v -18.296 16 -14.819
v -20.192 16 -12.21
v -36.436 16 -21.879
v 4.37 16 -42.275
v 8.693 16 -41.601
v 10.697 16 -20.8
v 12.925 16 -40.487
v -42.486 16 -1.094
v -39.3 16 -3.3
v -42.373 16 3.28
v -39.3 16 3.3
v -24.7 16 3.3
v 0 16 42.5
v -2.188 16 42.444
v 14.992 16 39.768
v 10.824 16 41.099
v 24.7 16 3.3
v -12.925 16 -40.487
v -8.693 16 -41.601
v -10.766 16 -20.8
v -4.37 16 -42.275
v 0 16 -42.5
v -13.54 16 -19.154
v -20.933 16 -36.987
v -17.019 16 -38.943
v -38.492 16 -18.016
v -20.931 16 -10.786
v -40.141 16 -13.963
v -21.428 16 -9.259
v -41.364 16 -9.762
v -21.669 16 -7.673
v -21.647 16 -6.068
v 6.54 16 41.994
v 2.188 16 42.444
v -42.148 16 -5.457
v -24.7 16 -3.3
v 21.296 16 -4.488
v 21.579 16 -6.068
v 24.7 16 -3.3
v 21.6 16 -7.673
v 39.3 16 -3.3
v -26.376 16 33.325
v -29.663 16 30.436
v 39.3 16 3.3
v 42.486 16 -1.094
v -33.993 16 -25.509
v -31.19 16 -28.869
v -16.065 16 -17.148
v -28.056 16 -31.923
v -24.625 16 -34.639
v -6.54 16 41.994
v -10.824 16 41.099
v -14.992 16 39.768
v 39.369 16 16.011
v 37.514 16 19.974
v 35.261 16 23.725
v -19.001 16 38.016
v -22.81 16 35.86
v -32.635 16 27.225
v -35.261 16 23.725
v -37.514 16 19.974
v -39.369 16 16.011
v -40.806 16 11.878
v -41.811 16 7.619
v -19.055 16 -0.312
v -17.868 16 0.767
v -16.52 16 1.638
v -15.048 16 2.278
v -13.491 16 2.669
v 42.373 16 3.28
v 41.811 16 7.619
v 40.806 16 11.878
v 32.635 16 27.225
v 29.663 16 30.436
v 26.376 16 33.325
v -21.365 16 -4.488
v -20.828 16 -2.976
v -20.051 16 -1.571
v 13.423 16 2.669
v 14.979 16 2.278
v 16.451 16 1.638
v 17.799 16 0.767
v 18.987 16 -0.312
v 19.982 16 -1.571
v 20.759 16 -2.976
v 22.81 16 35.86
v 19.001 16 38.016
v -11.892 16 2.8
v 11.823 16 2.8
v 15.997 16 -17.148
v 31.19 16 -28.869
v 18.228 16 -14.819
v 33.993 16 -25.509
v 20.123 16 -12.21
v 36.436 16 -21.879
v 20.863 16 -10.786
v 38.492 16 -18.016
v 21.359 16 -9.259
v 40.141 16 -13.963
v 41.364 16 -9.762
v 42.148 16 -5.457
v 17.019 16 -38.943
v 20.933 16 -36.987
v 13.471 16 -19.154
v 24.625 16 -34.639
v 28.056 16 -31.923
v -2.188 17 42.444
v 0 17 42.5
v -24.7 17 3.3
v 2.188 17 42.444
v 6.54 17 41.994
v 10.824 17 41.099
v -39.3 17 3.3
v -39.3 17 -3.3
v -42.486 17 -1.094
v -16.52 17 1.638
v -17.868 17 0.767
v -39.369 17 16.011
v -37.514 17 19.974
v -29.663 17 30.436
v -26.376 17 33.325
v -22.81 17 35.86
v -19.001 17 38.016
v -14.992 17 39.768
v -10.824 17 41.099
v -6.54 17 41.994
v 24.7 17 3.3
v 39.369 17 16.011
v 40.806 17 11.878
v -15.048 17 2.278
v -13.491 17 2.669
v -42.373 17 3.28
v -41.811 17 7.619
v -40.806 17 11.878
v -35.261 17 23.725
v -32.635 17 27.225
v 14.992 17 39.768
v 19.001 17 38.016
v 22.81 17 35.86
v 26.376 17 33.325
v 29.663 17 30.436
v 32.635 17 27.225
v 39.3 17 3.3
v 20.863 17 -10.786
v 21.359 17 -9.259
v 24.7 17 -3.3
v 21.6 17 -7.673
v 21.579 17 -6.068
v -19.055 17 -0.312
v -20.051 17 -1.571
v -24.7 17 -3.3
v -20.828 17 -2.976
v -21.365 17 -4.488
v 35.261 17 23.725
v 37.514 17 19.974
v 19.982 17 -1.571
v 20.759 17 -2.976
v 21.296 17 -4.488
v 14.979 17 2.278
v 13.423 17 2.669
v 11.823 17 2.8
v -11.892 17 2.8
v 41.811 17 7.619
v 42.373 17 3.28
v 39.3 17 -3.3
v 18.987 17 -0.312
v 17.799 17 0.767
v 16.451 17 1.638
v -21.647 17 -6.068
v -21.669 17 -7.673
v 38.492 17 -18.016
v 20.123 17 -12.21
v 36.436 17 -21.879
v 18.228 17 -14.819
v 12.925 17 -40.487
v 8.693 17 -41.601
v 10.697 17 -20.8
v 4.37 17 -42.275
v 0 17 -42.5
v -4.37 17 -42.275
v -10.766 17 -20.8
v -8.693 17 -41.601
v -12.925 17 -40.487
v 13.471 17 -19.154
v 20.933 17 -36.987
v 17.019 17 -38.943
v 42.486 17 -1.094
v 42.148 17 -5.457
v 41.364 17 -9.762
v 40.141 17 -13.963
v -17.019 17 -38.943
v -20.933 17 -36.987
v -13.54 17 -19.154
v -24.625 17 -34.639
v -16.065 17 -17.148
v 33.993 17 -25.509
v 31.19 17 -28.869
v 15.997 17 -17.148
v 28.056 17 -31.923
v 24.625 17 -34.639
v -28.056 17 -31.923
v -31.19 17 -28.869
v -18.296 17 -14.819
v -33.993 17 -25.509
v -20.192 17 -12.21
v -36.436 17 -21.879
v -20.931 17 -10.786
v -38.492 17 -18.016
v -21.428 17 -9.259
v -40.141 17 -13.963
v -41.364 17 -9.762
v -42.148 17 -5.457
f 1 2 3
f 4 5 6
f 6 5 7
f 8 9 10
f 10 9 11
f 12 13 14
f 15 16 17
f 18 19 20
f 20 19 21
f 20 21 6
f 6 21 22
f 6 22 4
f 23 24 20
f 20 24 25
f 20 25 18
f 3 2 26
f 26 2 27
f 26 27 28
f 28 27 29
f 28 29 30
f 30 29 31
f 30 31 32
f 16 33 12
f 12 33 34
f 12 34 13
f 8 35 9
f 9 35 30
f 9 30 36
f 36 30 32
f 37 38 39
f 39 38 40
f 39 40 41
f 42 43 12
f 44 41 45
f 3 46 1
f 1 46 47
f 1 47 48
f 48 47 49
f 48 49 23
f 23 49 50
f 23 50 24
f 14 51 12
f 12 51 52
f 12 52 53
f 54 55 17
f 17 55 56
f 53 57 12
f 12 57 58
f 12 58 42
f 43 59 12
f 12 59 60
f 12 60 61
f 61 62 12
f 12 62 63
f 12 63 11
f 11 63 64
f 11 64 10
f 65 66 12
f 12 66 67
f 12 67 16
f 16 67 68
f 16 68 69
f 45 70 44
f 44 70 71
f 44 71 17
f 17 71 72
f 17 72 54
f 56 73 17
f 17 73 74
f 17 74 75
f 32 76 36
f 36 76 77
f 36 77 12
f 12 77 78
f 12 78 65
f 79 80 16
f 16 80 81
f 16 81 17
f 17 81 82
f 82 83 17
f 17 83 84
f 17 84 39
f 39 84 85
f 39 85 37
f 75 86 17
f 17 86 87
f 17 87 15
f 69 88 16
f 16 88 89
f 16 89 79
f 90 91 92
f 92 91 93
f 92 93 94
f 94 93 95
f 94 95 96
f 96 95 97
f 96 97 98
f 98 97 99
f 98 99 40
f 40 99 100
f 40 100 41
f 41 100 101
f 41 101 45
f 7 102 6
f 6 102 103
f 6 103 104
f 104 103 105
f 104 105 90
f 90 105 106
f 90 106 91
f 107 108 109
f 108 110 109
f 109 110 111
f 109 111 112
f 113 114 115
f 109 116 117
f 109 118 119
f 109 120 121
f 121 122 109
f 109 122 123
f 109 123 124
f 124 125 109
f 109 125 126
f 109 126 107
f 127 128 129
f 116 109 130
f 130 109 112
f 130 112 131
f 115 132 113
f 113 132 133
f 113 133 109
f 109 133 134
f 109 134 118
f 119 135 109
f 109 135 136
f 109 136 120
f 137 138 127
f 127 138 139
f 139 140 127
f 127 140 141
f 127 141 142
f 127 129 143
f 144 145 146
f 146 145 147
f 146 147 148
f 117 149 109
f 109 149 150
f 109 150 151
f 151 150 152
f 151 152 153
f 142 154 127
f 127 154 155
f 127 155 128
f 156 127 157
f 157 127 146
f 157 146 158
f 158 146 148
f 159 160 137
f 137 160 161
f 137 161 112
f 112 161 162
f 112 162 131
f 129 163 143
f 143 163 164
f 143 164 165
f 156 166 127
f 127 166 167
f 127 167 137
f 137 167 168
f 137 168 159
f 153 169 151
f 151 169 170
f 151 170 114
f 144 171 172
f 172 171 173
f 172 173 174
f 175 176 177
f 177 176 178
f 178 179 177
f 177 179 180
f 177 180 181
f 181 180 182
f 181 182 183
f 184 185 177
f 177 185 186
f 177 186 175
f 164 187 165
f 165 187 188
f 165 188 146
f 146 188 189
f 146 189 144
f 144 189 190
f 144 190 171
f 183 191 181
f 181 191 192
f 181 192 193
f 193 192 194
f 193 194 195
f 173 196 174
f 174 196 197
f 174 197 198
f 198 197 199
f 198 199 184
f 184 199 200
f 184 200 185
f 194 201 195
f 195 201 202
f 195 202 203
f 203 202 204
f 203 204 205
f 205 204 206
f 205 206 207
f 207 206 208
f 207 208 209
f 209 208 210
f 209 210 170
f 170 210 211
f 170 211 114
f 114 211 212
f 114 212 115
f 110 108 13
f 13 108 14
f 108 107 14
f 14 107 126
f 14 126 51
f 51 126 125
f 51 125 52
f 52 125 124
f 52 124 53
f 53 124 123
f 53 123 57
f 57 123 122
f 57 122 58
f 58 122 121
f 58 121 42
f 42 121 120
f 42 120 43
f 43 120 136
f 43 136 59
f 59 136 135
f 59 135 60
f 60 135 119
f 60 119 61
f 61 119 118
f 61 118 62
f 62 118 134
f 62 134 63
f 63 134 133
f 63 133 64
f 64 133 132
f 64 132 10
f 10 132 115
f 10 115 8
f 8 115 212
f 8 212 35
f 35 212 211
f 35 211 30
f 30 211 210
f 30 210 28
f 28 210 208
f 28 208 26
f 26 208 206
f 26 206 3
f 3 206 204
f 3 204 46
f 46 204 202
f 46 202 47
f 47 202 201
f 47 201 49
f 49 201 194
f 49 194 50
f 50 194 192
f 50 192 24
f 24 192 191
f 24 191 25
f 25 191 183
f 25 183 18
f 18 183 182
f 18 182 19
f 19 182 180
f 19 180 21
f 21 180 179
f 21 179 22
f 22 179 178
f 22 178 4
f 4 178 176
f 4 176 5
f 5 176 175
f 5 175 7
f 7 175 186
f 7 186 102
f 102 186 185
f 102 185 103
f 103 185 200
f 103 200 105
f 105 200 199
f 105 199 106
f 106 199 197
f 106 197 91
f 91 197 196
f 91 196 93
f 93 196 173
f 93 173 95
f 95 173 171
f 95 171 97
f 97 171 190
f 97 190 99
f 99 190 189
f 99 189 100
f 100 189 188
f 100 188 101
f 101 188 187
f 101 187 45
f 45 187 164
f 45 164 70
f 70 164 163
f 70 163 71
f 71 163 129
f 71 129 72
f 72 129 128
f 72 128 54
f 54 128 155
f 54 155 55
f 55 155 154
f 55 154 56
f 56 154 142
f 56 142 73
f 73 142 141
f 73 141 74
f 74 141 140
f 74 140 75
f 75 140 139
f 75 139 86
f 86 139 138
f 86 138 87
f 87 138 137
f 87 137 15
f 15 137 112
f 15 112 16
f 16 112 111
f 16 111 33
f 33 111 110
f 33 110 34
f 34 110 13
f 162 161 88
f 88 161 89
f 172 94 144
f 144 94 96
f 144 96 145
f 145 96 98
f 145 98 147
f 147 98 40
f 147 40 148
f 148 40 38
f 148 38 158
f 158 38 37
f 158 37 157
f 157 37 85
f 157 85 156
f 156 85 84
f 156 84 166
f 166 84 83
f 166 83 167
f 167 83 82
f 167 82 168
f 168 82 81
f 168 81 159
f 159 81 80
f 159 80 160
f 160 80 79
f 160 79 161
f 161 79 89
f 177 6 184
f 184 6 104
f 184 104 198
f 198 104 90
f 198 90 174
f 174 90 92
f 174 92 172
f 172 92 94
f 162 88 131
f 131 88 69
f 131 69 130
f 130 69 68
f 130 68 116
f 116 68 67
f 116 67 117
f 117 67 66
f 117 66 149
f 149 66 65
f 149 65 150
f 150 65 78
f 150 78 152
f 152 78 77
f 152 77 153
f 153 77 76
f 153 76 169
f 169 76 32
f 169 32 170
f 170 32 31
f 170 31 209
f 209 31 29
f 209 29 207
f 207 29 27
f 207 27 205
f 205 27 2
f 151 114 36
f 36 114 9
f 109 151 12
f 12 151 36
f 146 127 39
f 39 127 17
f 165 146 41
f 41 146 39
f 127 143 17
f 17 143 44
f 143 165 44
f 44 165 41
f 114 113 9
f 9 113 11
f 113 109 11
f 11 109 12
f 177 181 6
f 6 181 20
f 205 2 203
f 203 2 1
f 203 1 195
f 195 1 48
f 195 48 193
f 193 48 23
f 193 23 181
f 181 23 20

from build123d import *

# Parameters (mm, degrees)
CUT_EXTRUDE1_DEPTH           = 5
CUT_EXTRUDE3_DEPTH           = 60
SKETCH8_R                    = 43
CUT_EXTRUDE4_DEPTH           = 53
FILLET1_R                    = 7
SKETCH12_W                   = 6.5
SKETCH12_H                   = 51.5
CUT_REVOLVE1_ANGLE           = 60
CUT_REVOLVE1_OTHER_WAY_ANGLE = 60
SKETCH18_W                   = 13
SKETCH18_H                   = 8
CUT_EXTRUDE13_DEPTH          = 5
SKETCH20_W                   = 100
SKETCH20_H                   = 7
CUT_EXTRUDE15_DEPTH          = 5
SKETCH19_R                   = 1.5
CUT_EXTRUDE14_DEPTH          = 12
FILLET3_R                    = 4
SKETCH24_W                   = 2
SKETCH24_H                   = 3
BOSS_EXTRUDE3_DEPTH          = 2
CIRPATTERN2_COUNT            = 5
SKETCH26_W                   = 5
SKETCH26_H                   = 51.5
CUT_REVOLVE2_ANGLE           = 50
CUT_REVOLVE2_OTHER_WAY_ANGLE = 50
SKETCH29_W                   = 16.2
SKETCH29_H                   = 11.2
SKETCH29_W_2                 = 13
SKETCH29_H_2                 = 8
BOSS_EXTRUDE4_DEPTH          = 19
SKETCH36_W                   = 2
SKETCH36_H                   = 2
BOSS_EXTRUDE7_DEPTH          = 5
SKETCH37_W                   = 2
SKETCH37_H                   = 2
BOSS_EXTRUDE8_DEPTH          = 12.5
SKETCH40_W                   = 2
SKETCH40_H                   = 2
BOSS_EXTRUDE9_DEPTH          = 5
FILLET8_R                    = 9
SKETCH50_W                   = 13
SKETCH50_H                   = 5
CUT_EXTRUDE23_DEPTH          = 7
SKETCH51_R                   = 42.5
SKETCH51_W                   = 14.6
SKETCH51_H                   = 6.6
BOSS_EXTRUDE10_DEPTH         = 1
INTERSECT2_START             = 17.5
INTERSECT2_OUTLINE_R         = 45
INTERSECT2_OUTLINE_W         = 13
INTERSECT2_OUTLINE_H         = 8
INTERSECT2_DEPTH             = 59
INTERSECT2_2_OUTLINE_R       = 45
INTERSECT2_2_OUTLINE_W       = 13
INTERSECT2_2_OUTLINE_H       = 5
INTERSECT2_2_DEPTH           = 16
INTERSECT2_START_2           = 16
INTERSECT2_3_OUTLINE_R       = 45
INTERSECT2_3_OUTLINE_R_2     = 43
INTERSECT2_3_DEPTH           = 1.5
INTERSECT3_START             = -40.6
INTERSECT3_OUTLINE_W         = 14.5
INTERSECT3_OUTLINE_H         = 2
INTERSECT3_DEPTH             = 5


# Read off the part's stored shape, not the designer's step: Intersect2, Intersect3
with BuildPart() as part:
    # Sketch1 → Revolve1 (revolve)
    with BuildSketch(Plane.XY, mode=Mode.PRIVATE) as revolve1_sk:
        with BuildLine():
            Line((0, 76.5), (0, 11.5))
            Line((0, 11.5), (22.5, 11.5))
            Line((22.5, 11.5), (22.5, 0))
            Line((22.5, 0), (25, 0))
            Line((25, 0), (25, 11.5))
            Line((25, 11.5), (45, 11.5))
            Line((45, 11.5), (45, 71.5))
            ThreePointArc((45, 71.5), (43.535533906, 75.035533906), (40, 76.5))
            Line((40, 76.5), (0, 76.5))
        make_face()
    revolve(revolve1_sk.sketch.rotate(Axis((0, 2, 0), (0, 1, 0)), 90), axis=Axis((0, 2, 0), (0, 1, 0)))

    # Sketch5 → Cut-Extrude1 (cut)
    with BuildSketch(Plane(origin=(0, 76.5, 0), x_dir=(1, 0, 0), z_dir=(0, 1, 0))):
        with BuildLine():
            Line((-45, 0), (45, 0))
            ThreePointArc((45, 0), (0, 45), (-45, 0))
        make_face()
    extrude(amount=-CUT_EXTRUDE1_DEPTH, mode=Mode.SUBTRACT)

    # Sketch7 → Cut-Extrude3 (cut)
    with BuildSketch(Plane.XZ.offset(-11.5)):
        with BuildLine():
            Line((21, 0), (-21, 0))
            ThreePointArc((-21, 0), (-18.277714988, -10.340461055), (-10.816653826, -18))
            Line((-10.816653826, -18), (10.816653826, -18))
            ThreePointArc((10.816653826, -18), (18.277714988, -10.340461055), (21, 0))
        make_face()
    extrude(amount=-CUT_EXTRUDE3_DEPTH, mode=Mode.SUBTRACT)

    # Sketch8 → Cut-Extrude4 (cut)
    with BuildSketch(Plane(origin=(0, 69, 0), x_dir=(1, 0, 0), z_dir=(0, 1, 0))):
        with Locations(Location((0, 0, 0), (0, 0, 270))):
            Circle(SKETCH8_R)
        with BuildLine():
            Line((22.912878475, -2), (-22.981606036, -2))
            ThreePointArc((-22.981606036, -2), (-20.067855169, 10.855581536), (-10.573881727, 20))
            Line((-10.573881727, 20), (10.505154166, 20))
            ThreePointArc((10.505154166, 20), (19.999127608, 10.855581536), (22.912878475, -2))
        make_face(mode=Mode.SUBTRACT)
    extrude(amount=-CUT_EXTRUDE4_DEPTH, mode=Mode.SUBTRACT)

    # Fillet1
    fillet1_edges = [part.edges().sort_by_distance(p)[0] for p in [
        (-21, 41.5, 0),
        (21, 41.5, 0),
    ]]
    fillet(fillet1_edges, radius=FILLET1_R)

    # Sketch12 → Cut-Revolve1 (revolve, cut)
    with BuildSketch(Plane(origin=(0, 0, 0), x_dir=(0, 0, -1), z_dir=(1, 0, 0))):
        with Locations((-44.75, 43.25)):
            Rectangle(SKETCH12_W, SKETCH12_H)
    revolve(axis=Axis((0, 71.5, 0), (0, -1, 0)), revolution_arc=CUT_REVOLVE1_ANGLE, mode=Mode.SUBTRACT)

    # Sketch12 → Cut-Revolve1 other way (revolve, cut)
    with BuildSketch(Plane(origin=(0, 0, 0), x_dir=(0, 0, -1), z_dir=(1, 0, 0))):
        with Locations((-44.75, 43.25)):
            Rectangle(SKETCH12_W, SKETCH12_H)
    revolve(axis=Axis((0, 71.5, 0), (0, 1, 0)), revolution_arc=CUT_REVOLVE1_OTHER_WAY_ANGLE, mode=Mode.SUBTRACT)

    # Sketch18 → Cut-Extrude13 (cut)
    with BuildSketch(Plane(origin=(0, 71.5, 0), x_dir=(1, 0, 0), z_dir=(0, 1, 0))):
        with Locations((0, 30)):
            Rectangle(SKETCH18_W, SKETCH18_H)
    extrude(amount=-CUT_EXTRUDE13_DEPTH, mode=Mode.SUBTRACT)

    # Sketch20 → Cut-Extrude15 (cut)
    with BuildSketch(Plane(origin=(0, 76.5, 0), x_dir=(1, 0, 0), z_dir=(0, 1, 0))):
        with Locations((0, -3.5)):
            Rectangle(SKETCH20_W, SKETCH20_H)
    extrude(amount=-CUT_EXTRUDE15_DEPTH, mode=Mode.SUBTRACT)

    # Sketch19 → Cut-Extrude14 (cut)
    with BuildSketch(Plane(origin=(0, 0, 7), x_dir=(-1, 0, 0), z_dir=(0, 0, -1))):
        with Locations((0, 74)):
            Circle(SKETCH19_R)
        with Locations((-30, 74)):
            Circle(SKETCH19_R)
        with Locations((29.452221542, 74)):
            Circle(SKETCH19_R)
    extrude(amount=-CUT_EXTRUDE14_DEPTH, mode=Mode.SUBTRACT)

    # Fillet3
    fillet3_edges = [part.edges().sort_by_distance(p)[0] for p in [
        (0, 11.5, 45),
    ]]
    fillet(fillet3_edges, radius=FILLET3_R)

    # Sketch24 → Boss-Extrude3 (add)
    with BuildSketch(Plane.XZ):
        with Locations((0, -22.5)):
            Rectangle(SKETCH24_W, SKETCH24_H)
    boss_extrude3 = extrude(amount=-BOSS_EXTRUDE3_DEPTH)

    # CirPattern2: Boss-Extrude3 ×5 about axis
    cirpattern2_axis = Axis((0, 0, 0), (0, 1, 0))
    for i in range(1, CIRPATTERN2_COUNT):
        add(boss_extrude3.rotate(cirpattern2_axis, i * 360 / CIRPATTERN2_COUNT))

    # Sketch26 → Cut-Revolve2 (revolve, cut)
    with BuildSketch(Plane(origin=(0, 0, 0), x_dir=(0, 0, -1), z_dir=(1, 0, 0))):
        with Locations((45.056943441, 43.25)):
            Rectangle(SKETCH26_W, SKETCH26_H)
    revolve(axis=Axis((0, 2, 0), (0, -1, 0)), revolution_arc=CUT_REVOLVE2_ANGLE, mode=Mode.SUBTRACT)

    # Sketch26 → Cut-Revolve2 other way (revolve, cut)
    with BuildSketch(Plane(origin=(0, 0, 0), x_dir=(0, 0, -1), z_dir=(1, 0, 0))):
        with Locations((45.056943441, 43.25)):
            Rectangle(SKETCH26_W, SKETCH26_H)
    revolve(axis=Axis((0, 2, 0), (0, 1, 0)), revolution_arc=CUT_REVOLVE2_OTHER_WAY_ANGLE, mode=Mode.SUBTRACT)

    # Sketch29 → Boss-Extrude4 (add)
    with BuildSketch(Plane.XZ.offset(-69)):
        with Locations((0, -30)):
            Rectangle(SKETCH29_W, SKETCH29_H)
        with Locations((0, -30)):
            Rectangle(SKETCH29_W_2, SKETCH29_H_2, mode=Mode.SUBTRACT)
    extrude(amount=BOSS_EXTRUDE4_DEPTH)

    # Fillet8
    fillet8_edges = [part.edges().sort_by_distance(p)[0] for p in [
        (-22.981606036, 42.5, 2),
        (22.912878475, 42.5, 2),
    ]]
    fillet(fillet8_edges, radius=FILLET8_R)

    # Sketch50 → Cut-Extrude23 (cut)
    with BuildSketch(Plane(origin=(0, 16, 0), x_dir=(1, 0, 0), z_dir=(0, 1, 0))):
        with Locations((32, 0)):
            Rectangle(SKETCH50_W, SKETCH50_H)
        with Locations((-32, 0)):
            Rectangle(SKETCH50_W, SKETCH50_H)
    extrude(amount=-CUT_EXTRUDE23_DEPTH, mode=Mode.SUBTRACT)

    # Sketch51 → Boss-Extrude10 (add)
    with BuildSketch(Plane(origin=(0, 16, 0), x_dir=(1, 0, 0), z_dir=(0, 1, 0))):
        with Locations(Location((0, 0, 0), (0, 0, 270))):
            Circle(SKETCH51_R)
        with Locations((32, 0)):
            Rectangle(SKETCH51_W, SKETCH51_H, mode=Mode.SUBTRACT)
        with Locations((-32, 0)):
            Rectangle(SKETCH51_W, SKETCH51_H, mode=Mode.SUBTRACT)
        with BuildLine():
            ThreePointArc((-20.192156993, 12.210139591), (-20.468000439, 2.257604402), (-11.8918892, -2.8))
            Line((-11.8918892, -2.8), (11.823161639, -2.8))
            ThreePointArc((11.823161639, -2.8), (20.399272878, 2.257604402), (20.123429432, 12.210139591))
            ThreePointArc((20.123429432, 12.210139591), (15.996509538, 17.148165703), (10.697483593, 20.8))
            Line((10.697483593, 20.8), (-10.766211154, 20.8))
            ThreePointArc((-10.766211154, 20.8), (-16.065237099, 17.148165703), (-20.192156993, 12.210139591))
        make_face(mode=Mode.SUBTRACT)
    extrude(amount=BOSS_EXTRUDE10_DEPTH)

    # Intersect2 outline → Intersect2 (cut)
    with BuildSketch(Plane(origin=(0, 0, 0), x_dir=(1, 0, 0), z_dir=(0, 1, 0)).offset(INTERSECT2_START)):
        Circle(INTERSECT2_OUTLINE_R)
        with Locations((0, 30)):
            Rectangle(INTERSECT2_OUTLINE_W, INTERSECT2_OUTLINE_H, mode=Mode.SUBTRACT)
        with BuildLine():
            ThreePointArc((-18.186533479, 10.5), (-14.978608696, 14.718739128), (-10.816653826, 18))
            Line((-10.816653826, 18), (10.816653826, 18))
            ThreePointArc((10.816653826, 18), (14.978608696, 14.718739128), (18.186533479, 10.5))
            ThreePointArc((18.186533479, 10.5), (18.186533479, 3.5), (12.124355653, 0))
            Line((12.124355653, 0), (-12.124355653, 0))
            ThreePointArc((-12.124355653, 0), (-18.186533479, 3.5), (-18.186533479, 10.5))
        make_face(mode=Mode.SUBTRACT)
    extrude(amount=INTERSECT2_DEPTH, mode=Mode.SUBTRACT)

    # Intersect2 2 outline → Intersect2 2 (cut)
    with BuildSketch(Plane(origin=(0, 0, 0), x_dir=(1, 0, 0), z_dir=(0, 1, 0))):
        Circle(INTERSECT2_2_OUTLINE_R)
        with Locations((-32, 0)):
            Rectangle(INTERSECT2_2_OUTLINE_W, INTERSECT2_2_OUTLINE_H, mode=Mode.SUBTRACT)
        with Locations((32, 0)):
            Rectangle(INTERSECT2_2_OUTLINE_W, INTERSECT2_2_OUTLINE_H, mode=Mode.SUBTRACT)
        with BuildLine():
            ThreePointArc((-18.186533479, 10.5), (-14.978608696, 14.718739128), (-10.816653826, 18))
            Line((-10.816653826, 18), (10.816653826, 18))
            ThreePointArc((10.816653826, 18), (14.978608696, 14.718739128), (18.186533479, 10.5))
            ThreePointArc((18.186533479, 10.5), (18.186533479, 3.5), (12.124355653, 0))
            Line((12.124355653, 0), (-12.124355653, 0))
            ThreePointArc((-12.124355653, 0), (-18.186533479, 3.5), (-18.186533479, 10.5))
        make_face(mode=Mode.SUBTRACT)
    extrude(amount=INTERSECT2_2_DEPTH, mode=Mode.SUBTRACT)

    # Intersect2 3 outline → Intersect2 3 (cut)
    # profile 1 of 2: a face of its own
    with BuildSketch(Plane(origin=(0, 0, 0), x_dir=(1, 0, 0), z_dir=(0, 1, 0)).offset(INTERSECT2_START_2)):
        Circle(INTERSECT2_3_OUTLINE_R)
        Circle(INTERSECT2_3_OUTLINE_R_2, mode=Mode.SUBTRACT)
    # profile 2 of 2: a face of its own
    with BuildSketch(Plane(origin=(0, 0, 0), x_dir=(1, 0, 0), z_dir=(0, 1, 0)).offset(INTERSECT2_START_2)):
        with BuildLine():
            Line((-11.8918892, -2), (11.823161639, -2))
            ThreePointArc((11.823161639, -2), (19.699182165, 2.644738737), (19.445856551, 11.784822073))
            ThreePointArc((19.445856551, 11.784822073), (15.52739893, 16.493045158), (10.505154166, 20))
            Line((10.505154166, 20), (-10.573881727, 20))
            ThreePointArc((-10.573881727, 20), (-15.596126491, 16.493045158), (-19.514584112, 11.784822073))
            ThreePointArc((-19.514584112, 11.784822073), (-19.767909726, 2.644738737), (-11.8918892, -2))
        make_face()
        with BuildLine():
            Line((-10.816653826, 18), (10.816653826, 18))
            ThreePointArc((10.816653826, 18), (14.978608696, 14.718739128), (18.186533479, 10.5))
            ThreePointArc((18.186533479, 10.5), (18.186533479, 3.5), (12.124355653, 0))
            Line((12.124355653, 0), (-12.124355653, 0))
            ThreePointArc((-12.124355653, 0), (-18.186533479, 3.5), (-18.186533479, 10.5))
            ThreePointArc((-18.186533479, 10.5), (-14.978608696, 14.718739128), (-10.816653826, 18))
        make_face(mode=Mode.SUBTRACT)
    extrude(amount=INTERSECT2_3_DEPTH, mode=Mode.SUBTRACT)


with BuildPart() as body_2:
    # Sketch36 → Boss-Extrude7 (new body)
    with BuildSketch(Plane(origin=(0, 0, -35.6), x_dir=(-1, 0, 0), z_dir=(0, 0, -1))):
        with Locations((-6.159647943, 37.918102195)):
            Rectangle(SKETCH36_W, SKETCH36_H)
    extrude(amount=BOSS_EXTRUDE7_DEPTH)

    # Sketch37 → Boss-Extrude8 (add)
    with BuildSketch(Plane.ZY.offset(-5.159647943)):
        with Locations((-39.597351245, 37.918102195)):
            Rectangle(SKETCH37_W, SKETCH37_H)
    extrude(amount=BOSS_EXTRUDE8_DEPTH)

    # Sketch40 → Boss-Extrude9 (add)
    with BuildSketch(Plane(origin=(0, 0, -35.6), x_dir=(-1, 0, 0), z_dir=(0, 0, -1))):
        with Locations((6.340352057, 37.918102195)):
            Rectangle(SKETCH40_W, SKETCH40_H)
    extrude(amount=BOSS_EXTRUDE9_DEPTH)

    # Intersect3 outline → Intersect3 (cut)
    with BuildSketch(Plane.XY.offset(INTERSECT3_START)):
        with Locations((-0.090352057, 37.918102195)):
            Rectangle(INTERSECT3_OUTLINE_W, INTERSECT3_OUTLINE_H)
    extrude(amount=INTERSECT3_DEPTH, mode=Mode.SUBTRACT)


solid = part.part
